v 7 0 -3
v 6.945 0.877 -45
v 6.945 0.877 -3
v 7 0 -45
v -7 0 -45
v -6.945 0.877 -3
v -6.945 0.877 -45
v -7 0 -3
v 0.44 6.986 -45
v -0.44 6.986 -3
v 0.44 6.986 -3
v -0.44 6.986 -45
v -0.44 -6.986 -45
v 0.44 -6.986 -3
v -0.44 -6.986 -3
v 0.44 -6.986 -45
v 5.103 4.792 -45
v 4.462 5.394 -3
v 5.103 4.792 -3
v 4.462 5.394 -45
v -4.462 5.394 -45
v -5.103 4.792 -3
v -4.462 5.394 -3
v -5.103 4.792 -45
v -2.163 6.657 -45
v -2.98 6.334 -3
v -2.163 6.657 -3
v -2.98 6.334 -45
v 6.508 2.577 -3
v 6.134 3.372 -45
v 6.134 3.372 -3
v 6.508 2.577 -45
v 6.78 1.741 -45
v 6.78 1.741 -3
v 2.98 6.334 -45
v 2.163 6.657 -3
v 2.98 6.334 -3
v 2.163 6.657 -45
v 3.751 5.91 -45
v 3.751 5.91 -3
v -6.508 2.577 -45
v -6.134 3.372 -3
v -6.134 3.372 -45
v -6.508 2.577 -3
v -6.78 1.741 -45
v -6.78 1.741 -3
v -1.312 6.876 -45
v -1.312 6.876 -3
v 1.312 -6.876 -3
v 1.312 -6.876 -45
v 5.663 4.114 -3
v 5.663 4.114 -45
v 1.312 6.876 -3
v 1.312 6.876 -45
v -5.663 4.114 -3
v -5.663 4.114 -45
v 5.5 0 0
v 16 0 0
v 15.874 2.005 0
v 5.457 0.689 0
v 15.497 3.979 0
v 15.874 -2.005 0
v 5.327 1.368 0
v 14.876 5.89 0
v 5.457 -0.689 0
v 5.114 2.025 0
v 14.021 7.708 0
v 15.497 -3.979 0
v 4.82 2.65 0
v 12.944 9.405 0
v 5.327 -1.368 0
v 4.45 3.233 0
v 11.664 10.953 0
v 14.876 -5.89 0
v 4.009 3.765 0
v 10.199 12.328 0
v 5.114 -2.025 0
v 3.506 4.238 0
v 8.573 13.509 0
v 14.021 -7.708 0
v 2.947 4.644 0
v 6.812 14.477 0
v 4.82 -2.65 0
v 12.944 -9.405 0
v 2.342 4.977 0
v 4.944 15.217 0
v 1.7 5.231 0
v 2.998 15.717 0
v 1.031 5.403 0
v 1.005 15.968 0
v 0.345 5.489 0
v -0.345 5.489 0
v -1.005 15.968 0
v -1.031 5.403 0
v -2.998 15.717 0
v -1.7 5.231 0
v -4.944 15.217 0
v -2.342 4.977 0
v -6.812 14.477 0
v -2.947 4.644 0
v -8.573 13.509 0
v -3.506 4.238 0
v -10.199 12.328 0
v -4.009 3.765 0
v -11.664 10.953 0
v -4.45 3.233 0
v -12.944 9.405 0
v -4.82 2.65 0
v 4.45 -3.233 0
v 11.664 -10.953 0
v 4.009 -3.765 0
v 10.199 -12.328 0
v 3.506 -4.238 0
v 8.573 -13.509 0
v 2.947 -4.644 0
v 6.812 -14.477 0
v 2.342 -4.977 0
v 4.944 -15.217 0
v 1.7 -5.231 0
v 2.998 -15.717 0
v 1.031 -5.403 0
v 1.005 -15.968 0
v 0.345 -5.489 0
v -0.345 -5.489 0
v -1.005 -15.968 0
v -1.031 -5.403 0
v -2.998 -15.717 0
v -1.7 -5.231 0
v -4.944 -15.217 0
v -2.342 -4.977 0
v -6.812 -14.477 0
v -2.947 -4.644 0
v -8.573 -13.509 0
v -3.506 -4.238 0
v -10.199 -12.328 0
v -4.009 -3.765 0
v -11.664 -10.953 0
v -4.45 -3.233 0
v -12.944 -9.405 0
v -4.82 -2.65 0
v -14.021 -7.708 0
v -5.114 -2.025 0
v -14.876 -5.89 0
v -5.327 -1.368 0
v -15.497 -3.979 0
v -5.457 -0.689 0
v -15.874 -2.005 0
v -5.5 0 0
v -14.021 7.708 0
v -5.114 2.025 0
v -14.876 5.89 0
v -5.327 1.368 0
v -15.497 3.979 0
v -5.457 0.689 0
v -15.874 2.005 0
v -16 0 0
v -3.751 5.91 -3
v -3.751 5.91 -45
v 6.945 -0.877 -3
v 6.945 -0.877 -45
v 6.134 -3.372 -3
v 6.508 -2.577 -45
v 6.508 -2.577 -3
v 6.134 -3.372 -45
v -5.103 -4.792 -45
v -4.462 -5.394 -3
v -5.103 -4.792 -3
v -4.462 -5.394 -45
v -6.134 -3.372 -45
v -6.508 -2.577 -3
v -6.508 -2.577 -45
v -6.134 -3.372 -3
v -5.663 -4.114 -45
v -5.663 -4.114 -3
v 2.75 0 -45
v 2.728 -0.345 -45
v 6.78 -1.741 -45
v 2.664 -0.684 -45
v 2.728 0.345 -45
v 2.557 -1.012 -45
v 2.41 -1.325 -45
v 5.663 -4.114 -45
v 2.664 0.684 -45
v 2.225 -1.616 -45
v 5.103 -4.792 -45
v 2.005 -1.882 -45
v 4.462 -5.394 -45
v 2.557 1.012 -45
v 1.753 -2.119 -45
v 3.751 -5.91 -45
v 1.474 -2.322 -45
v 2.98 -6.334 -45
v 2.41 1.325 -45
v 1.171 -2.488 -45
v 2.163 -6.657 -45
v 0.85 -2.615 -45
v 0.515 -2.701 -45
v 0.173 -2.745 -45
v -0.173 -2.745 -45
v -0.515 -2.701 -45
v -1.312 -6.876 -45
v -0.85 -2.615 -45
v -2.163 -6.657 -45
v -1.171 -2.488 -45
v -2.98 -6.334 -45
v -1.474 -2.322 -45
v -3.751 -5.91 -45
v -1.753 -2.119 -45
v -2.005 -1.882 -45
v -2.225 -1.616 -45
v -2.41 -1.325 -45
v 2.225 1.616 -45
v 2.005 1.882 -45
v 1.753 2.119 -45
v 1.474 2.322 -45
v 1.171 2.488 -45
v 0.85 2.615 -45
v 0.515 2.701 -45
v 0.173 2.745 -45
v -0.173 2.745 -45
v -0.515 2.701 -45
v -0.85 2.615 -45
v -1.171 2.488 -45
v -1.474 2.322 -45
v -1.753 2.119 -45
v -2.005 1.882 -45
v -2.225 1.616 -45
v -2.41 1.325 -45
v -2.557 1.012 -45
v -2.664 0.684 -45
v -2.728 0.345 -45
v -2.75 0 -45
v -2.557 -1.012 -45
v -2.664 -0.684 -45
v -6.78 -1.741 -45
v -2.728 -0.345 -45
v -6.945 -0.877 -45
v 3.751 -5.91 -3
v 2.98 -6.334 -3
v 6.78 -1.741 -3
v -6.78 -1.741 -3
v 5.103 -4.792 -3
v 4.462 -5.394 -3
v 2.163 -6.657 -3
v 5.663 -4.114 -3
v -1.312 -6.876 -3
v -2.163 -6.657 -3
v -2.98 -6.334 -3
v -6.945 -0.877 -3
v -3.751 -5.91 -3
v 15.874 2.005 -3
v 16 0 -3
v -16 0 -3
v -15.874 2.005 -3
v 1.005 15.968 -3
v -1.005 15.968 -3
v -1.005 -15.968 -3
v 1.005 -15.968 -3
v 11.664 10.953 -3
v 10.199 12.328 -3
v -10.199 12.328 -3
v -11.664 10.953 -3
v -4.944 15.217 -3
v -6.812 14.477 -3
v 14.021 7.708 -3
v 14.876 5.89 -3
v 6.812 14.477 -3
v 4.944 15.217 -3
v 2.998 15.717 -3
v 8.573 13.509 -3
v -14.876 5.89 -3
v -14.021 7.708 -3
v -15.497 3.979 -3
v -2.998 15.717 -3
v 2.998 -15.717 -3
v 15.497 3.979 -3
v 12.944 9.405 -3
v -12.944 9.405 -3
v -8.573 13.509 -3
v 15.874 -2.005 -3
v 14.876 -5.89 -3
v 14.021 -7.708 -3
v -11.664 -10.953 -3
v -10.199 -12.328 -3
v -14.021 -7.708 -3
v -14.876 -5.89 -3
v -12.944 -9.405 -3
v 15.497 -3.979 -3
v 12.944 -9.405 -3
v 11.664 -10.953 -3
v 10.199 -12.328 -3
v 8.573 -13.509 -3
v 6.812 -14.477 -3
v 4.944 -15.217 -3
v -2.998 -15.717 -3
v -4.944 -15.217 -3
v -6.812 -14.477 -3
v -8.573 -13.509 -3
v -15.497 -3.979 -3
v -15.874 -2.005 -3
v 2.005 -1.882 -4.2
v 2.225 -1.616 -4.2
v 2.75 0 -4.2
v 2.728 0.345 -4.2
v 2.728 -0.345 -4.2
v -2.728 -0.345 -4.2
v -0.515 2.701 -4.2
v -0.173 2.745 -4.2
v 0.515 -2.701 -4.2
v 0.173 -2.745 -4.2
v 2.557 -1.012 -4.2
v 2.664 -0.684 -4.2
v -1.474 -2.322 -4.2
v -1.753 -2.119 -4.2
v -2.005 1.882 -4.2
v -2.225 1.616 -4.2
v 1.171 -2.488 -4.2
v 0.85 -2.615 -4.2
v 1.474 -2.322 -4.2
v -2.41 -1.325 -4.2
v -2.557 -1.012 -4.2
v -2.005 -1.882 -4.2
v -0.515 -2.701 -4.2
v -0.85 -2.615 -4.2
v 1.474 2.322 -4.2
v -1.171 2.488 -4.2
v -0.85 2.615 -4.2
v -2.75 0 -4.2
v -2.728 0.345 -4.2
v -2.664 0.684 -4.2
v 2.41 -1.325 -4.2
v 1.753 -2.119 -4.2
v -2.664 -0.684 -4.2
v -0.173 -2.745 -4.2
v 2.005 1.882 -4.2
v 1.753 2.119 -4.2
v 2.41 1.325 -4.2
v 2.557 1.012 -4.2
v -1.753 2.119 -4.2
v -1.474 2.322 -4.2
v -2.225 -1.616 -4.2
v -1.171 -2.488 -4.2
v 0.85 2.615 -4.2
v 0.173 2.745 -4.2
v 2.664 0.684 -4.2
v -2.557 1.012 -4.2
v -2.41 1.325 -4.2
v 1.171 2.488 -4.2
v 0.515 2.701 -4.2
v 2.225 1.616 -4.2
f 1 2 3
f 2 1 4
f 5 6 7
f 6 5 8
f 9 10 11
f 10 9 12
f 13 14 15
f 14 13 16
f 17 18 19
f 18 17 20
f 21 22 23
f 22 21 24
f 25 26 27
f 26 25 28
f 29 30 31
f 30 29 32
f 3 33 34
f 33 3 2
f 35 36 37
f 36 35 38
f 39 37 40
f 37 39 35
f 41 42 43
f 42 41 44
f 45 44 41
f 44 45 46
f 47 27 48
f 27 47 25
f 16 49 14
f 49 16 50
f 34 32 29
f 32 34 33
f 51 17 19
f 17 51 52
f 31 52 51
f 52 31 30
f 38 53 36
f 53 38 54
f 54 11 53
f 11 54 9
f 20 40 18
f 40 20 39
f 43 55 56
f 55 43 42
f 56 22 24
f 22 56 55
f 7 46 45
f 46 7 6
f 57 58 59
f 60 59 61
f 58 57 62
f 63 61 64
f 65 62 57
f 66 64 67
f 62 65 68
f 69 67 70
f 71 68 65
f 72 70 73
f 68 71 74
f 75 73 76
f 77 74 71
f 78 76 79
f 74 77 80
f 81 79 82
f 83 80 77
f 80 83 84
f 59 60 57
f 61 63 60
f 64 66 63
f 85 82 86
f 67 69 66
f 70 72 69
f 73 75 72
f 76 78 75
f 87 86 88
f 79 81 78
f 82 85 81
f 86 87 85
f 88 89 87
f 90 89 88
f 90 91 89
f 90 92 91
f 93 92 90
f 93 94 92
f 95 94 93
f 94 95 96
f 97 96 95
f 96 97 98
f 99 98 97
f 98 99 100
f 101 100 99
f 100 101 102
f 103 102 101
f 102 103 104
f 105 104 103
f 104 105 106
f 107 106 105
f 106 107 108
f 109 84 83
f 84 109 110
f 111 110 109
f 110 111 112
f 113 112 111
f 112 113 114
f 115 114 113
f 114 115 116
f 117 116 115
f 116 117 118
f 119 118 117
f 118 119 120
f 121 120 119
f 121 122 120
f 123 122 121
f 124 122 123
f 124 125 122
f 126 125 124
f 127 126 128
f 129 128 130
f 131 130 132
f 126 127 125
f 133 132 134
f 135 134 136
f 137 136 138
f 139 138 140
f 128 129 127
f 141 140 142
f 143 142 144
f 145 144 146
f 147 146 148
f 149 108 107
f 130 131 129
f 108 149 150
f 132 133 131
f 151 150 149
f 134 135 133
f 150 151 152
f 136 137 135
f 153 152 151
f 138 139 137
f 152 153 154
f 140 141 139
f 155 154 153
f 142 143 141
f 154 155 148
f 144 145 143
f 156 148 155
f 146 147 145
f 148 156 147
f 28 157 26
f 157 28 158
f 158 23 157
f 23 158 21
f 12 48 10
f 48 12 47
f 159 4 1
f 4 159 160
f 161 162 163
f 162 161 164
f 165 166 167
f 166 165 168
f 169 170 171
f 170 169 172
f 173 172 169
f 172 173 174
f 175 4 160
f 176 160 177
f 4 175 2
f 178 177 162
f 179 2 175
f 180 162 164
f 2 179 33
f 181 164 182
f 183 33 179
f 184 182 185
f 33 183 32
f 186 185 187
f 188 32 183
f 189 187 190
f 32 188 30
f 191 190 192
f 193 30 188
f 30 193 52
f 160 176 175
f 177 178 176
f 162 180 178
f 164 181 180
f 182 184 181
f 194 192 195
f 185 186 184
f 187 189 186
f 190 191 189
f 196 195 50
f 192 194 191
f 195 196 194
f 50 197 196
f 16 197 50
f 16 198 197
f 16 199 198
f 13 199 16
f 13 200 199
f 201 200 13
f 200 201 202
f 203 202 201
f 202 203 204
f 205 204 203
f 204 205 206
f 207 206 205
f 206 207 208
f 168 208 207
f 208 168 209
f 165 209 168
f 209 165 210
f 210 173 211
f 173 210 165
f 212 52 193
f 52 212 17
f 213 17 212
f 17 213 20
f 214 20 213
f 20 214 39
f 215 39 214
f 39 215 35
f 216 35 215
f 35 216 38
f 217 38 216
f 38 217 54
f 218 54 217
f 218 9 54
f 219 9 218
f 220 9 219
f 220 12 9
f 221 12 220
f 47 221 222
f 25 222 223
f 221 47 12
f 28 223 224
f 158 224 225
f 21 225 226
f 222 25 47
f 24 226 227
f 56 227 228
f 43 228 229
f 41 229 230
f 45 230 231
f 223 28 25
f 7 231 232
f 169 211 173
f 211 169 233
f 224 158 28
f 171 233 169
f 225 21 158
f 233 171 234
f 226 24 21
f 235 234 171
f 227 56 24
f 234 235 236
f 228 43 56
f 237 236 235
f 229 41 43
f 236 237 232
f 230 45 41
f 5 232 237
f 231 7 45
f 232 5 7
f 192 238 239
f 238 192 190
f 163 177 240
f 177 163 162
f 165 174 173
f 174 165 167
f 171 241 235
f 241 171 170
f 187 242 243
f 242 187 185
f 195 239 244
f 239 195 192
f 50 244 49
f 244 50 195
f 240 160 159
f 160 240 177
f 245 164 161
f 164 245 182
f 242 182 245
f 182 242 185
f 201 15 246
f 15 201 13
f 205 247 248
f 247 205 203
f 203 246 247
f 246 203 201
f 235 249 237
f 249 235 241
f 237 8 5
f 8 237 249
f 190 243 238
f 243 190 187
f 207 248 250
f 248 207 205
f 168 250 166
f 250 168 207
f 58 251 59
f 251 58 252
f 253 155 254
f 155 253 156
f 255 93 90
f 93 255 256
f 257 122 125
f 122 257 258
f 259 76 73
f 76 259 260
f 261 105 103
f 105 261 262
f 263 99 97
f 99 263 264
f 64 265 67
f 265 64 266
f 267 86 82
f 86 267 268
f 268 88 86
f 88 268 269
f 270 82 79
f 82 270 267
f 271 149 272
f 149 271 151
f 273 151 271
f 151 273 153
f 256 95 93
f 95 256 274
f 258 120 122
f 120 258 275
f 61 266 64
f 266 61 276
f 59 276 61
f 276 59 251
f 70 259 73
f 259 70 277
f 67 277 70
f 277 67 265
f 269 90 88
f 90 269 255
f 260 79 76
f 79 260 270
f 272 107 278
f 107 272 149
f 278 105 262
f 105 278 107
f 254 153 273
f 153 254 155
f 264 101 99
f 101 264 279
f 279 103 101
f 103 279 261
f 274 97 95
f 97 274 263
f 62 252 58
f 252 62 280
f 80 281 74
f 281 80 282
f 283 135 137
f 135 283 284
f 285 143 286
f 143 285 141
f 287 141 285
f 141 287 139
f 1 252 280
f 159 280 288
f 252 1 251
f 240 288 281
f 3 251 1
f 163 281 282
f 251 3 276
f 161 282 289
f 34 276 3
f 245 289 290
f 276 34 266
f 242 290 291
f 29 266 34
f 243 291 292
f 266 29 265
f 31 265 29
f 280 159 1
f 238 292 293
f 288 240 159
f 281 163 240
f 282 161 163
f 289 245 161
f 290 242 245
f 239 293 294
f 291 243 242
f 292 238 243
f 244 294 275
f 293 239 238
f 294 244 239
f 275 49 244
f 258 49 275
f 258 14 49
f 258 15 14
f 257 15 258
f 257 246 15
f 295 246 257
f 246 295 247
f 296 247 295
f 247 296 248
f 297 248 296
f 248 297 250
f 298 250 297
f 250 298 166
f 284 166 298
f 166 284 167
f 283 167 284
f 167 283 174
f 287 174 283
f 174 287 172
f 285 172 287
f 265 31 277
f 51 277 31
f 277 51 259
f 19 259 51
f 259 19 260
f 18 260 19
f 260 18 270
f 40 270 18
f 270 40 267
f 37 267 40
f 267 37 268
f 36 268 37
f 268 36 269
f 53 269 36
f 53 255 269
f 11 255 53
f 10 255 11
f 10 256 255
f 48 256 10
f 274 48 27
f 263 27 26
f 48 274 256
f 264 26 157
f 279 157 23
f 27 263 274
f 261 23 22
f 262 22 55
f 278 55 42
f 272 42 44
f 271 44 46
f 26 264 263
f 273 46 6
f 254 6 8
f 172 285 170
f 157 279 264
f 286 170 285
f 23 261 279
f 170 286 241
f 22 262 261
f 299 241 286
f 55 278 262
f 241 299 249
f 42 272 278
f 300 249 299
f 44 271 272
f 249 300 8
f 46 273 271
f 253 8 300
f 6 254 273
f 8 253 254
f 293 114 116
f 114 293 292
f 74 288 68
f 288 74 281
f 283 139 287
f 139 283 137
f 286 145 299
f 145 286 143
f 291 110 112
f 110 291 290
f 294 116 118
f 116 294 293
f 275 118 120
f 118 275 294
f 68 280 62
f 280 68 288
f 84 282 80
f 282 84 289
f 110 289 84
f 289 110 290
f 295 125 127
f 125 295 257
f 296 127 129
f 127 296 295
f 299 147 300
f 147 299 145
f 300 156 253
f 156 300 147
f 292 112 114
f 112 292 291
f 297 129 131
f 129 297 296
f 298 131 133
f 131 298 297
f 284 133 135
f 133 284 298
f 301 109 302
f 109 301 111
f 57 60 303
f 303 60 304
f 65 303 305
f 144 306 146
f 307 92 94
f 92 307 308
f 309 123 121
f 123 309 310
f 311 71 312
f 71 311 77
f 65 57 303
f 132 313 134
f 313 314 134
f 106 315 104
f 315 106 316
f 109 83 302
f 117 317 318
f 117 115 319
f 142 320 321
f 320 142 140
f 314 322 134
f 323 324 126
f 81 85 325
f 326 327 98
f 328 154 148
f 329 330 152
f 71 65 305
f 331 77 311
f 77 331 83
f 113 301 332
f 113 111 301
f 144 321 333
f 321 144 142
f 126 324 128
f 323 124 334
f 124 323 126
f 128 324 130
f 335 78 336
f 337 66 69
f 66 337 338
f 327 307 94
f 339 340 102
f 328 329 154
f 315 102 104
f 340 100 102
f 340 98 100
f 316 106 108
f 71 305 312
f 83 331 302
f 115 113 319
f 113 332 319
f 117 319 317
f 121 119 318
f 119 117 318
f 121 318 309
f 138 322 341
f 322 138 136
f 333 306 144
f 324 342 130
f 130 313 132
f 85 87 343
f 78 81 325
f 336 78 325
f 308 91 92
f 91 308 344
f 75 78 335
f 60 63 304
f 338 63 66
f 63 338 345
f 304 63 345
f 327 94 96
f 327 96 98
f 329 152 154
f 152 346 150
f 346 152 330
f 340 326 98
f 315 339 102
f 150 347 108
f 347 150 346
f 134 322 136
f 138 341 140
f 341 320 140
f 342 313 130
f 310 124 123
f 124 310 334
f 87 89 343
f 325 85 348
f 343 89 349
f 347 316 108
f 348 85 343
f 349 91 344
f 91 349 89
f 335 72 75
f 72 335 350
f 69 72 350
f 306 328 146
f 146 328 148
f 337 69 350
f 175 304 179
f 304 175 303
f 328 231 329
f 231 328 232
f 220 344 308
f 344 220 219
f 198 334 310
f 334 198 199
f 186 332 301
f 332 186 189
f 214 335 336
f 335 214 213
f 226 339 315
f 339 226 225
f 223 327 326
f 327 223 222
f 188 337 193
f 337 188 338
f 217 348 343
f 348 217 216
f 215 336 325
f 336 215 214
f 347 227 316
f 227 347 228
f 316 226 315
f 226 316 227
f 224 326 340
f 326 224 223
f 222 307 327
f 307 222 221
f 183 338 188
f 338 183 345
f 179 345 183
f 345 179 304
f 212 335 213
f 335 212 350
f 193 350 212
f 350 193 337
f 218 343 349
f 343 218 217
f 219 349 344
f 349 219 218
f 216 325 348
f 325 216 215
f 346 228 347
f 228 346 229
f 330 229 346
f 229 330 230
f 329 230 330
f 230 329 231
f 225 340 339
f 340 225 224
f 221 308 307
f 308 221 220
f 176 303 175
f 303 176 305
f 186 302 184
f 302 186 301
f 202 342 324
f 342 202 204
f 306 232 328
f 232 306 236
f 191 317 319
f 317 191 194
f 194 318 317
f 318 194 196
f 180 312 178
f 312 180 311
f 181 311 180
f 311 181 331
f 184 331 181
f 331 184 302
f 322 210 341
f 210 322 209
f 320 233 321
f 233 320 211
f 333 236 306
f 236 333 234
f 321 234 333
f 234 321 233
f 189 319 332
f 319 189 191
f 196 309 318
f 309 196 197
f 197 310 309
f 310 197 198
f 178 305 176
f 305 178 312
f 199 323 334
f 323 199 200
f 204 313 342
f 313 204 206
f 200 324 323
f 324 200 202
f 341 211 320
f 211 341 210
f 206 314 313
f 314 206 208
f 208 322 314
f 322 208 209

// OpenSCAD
$fn = 50;


difference() {
	union() {
		translate(v = [0, 0, -45.0000000000]) {
			cylinder(h = 45, r = 7.0000000000);
		}
		translate(v = [0, 0, -3.0000000000]) {
			cylinder(h = 3, r = 16.0000000000);
		}
	}
	union() {
		translate(v = [0, 0, 0]) {
			rotate(a = [0, 0, 0]) {
				difference() {
					union() {
						#translate(v = [0, 0, -45.0000000000]) {
							cylinder(h = 45, r = 2.2500000000);
						}
						#translate(v = [0, 0, -4.2000000000]) {
							cylinder(h = 4.2000000000, r = 7.0000000000, r1 = 2.7500000000, r2 = 5.5000000000);
						}
						#translate(v = [0, 0, -45.0000000000]) {
							cylinder(h = 45, r = 2.7500000000);
						}
						#translate(v = [0, 0, -45.0000000000]) {
							cylinder(h = 45, r = 2.2500000000);
						}
					}
					union();
				}
			}
		}
	}
}
